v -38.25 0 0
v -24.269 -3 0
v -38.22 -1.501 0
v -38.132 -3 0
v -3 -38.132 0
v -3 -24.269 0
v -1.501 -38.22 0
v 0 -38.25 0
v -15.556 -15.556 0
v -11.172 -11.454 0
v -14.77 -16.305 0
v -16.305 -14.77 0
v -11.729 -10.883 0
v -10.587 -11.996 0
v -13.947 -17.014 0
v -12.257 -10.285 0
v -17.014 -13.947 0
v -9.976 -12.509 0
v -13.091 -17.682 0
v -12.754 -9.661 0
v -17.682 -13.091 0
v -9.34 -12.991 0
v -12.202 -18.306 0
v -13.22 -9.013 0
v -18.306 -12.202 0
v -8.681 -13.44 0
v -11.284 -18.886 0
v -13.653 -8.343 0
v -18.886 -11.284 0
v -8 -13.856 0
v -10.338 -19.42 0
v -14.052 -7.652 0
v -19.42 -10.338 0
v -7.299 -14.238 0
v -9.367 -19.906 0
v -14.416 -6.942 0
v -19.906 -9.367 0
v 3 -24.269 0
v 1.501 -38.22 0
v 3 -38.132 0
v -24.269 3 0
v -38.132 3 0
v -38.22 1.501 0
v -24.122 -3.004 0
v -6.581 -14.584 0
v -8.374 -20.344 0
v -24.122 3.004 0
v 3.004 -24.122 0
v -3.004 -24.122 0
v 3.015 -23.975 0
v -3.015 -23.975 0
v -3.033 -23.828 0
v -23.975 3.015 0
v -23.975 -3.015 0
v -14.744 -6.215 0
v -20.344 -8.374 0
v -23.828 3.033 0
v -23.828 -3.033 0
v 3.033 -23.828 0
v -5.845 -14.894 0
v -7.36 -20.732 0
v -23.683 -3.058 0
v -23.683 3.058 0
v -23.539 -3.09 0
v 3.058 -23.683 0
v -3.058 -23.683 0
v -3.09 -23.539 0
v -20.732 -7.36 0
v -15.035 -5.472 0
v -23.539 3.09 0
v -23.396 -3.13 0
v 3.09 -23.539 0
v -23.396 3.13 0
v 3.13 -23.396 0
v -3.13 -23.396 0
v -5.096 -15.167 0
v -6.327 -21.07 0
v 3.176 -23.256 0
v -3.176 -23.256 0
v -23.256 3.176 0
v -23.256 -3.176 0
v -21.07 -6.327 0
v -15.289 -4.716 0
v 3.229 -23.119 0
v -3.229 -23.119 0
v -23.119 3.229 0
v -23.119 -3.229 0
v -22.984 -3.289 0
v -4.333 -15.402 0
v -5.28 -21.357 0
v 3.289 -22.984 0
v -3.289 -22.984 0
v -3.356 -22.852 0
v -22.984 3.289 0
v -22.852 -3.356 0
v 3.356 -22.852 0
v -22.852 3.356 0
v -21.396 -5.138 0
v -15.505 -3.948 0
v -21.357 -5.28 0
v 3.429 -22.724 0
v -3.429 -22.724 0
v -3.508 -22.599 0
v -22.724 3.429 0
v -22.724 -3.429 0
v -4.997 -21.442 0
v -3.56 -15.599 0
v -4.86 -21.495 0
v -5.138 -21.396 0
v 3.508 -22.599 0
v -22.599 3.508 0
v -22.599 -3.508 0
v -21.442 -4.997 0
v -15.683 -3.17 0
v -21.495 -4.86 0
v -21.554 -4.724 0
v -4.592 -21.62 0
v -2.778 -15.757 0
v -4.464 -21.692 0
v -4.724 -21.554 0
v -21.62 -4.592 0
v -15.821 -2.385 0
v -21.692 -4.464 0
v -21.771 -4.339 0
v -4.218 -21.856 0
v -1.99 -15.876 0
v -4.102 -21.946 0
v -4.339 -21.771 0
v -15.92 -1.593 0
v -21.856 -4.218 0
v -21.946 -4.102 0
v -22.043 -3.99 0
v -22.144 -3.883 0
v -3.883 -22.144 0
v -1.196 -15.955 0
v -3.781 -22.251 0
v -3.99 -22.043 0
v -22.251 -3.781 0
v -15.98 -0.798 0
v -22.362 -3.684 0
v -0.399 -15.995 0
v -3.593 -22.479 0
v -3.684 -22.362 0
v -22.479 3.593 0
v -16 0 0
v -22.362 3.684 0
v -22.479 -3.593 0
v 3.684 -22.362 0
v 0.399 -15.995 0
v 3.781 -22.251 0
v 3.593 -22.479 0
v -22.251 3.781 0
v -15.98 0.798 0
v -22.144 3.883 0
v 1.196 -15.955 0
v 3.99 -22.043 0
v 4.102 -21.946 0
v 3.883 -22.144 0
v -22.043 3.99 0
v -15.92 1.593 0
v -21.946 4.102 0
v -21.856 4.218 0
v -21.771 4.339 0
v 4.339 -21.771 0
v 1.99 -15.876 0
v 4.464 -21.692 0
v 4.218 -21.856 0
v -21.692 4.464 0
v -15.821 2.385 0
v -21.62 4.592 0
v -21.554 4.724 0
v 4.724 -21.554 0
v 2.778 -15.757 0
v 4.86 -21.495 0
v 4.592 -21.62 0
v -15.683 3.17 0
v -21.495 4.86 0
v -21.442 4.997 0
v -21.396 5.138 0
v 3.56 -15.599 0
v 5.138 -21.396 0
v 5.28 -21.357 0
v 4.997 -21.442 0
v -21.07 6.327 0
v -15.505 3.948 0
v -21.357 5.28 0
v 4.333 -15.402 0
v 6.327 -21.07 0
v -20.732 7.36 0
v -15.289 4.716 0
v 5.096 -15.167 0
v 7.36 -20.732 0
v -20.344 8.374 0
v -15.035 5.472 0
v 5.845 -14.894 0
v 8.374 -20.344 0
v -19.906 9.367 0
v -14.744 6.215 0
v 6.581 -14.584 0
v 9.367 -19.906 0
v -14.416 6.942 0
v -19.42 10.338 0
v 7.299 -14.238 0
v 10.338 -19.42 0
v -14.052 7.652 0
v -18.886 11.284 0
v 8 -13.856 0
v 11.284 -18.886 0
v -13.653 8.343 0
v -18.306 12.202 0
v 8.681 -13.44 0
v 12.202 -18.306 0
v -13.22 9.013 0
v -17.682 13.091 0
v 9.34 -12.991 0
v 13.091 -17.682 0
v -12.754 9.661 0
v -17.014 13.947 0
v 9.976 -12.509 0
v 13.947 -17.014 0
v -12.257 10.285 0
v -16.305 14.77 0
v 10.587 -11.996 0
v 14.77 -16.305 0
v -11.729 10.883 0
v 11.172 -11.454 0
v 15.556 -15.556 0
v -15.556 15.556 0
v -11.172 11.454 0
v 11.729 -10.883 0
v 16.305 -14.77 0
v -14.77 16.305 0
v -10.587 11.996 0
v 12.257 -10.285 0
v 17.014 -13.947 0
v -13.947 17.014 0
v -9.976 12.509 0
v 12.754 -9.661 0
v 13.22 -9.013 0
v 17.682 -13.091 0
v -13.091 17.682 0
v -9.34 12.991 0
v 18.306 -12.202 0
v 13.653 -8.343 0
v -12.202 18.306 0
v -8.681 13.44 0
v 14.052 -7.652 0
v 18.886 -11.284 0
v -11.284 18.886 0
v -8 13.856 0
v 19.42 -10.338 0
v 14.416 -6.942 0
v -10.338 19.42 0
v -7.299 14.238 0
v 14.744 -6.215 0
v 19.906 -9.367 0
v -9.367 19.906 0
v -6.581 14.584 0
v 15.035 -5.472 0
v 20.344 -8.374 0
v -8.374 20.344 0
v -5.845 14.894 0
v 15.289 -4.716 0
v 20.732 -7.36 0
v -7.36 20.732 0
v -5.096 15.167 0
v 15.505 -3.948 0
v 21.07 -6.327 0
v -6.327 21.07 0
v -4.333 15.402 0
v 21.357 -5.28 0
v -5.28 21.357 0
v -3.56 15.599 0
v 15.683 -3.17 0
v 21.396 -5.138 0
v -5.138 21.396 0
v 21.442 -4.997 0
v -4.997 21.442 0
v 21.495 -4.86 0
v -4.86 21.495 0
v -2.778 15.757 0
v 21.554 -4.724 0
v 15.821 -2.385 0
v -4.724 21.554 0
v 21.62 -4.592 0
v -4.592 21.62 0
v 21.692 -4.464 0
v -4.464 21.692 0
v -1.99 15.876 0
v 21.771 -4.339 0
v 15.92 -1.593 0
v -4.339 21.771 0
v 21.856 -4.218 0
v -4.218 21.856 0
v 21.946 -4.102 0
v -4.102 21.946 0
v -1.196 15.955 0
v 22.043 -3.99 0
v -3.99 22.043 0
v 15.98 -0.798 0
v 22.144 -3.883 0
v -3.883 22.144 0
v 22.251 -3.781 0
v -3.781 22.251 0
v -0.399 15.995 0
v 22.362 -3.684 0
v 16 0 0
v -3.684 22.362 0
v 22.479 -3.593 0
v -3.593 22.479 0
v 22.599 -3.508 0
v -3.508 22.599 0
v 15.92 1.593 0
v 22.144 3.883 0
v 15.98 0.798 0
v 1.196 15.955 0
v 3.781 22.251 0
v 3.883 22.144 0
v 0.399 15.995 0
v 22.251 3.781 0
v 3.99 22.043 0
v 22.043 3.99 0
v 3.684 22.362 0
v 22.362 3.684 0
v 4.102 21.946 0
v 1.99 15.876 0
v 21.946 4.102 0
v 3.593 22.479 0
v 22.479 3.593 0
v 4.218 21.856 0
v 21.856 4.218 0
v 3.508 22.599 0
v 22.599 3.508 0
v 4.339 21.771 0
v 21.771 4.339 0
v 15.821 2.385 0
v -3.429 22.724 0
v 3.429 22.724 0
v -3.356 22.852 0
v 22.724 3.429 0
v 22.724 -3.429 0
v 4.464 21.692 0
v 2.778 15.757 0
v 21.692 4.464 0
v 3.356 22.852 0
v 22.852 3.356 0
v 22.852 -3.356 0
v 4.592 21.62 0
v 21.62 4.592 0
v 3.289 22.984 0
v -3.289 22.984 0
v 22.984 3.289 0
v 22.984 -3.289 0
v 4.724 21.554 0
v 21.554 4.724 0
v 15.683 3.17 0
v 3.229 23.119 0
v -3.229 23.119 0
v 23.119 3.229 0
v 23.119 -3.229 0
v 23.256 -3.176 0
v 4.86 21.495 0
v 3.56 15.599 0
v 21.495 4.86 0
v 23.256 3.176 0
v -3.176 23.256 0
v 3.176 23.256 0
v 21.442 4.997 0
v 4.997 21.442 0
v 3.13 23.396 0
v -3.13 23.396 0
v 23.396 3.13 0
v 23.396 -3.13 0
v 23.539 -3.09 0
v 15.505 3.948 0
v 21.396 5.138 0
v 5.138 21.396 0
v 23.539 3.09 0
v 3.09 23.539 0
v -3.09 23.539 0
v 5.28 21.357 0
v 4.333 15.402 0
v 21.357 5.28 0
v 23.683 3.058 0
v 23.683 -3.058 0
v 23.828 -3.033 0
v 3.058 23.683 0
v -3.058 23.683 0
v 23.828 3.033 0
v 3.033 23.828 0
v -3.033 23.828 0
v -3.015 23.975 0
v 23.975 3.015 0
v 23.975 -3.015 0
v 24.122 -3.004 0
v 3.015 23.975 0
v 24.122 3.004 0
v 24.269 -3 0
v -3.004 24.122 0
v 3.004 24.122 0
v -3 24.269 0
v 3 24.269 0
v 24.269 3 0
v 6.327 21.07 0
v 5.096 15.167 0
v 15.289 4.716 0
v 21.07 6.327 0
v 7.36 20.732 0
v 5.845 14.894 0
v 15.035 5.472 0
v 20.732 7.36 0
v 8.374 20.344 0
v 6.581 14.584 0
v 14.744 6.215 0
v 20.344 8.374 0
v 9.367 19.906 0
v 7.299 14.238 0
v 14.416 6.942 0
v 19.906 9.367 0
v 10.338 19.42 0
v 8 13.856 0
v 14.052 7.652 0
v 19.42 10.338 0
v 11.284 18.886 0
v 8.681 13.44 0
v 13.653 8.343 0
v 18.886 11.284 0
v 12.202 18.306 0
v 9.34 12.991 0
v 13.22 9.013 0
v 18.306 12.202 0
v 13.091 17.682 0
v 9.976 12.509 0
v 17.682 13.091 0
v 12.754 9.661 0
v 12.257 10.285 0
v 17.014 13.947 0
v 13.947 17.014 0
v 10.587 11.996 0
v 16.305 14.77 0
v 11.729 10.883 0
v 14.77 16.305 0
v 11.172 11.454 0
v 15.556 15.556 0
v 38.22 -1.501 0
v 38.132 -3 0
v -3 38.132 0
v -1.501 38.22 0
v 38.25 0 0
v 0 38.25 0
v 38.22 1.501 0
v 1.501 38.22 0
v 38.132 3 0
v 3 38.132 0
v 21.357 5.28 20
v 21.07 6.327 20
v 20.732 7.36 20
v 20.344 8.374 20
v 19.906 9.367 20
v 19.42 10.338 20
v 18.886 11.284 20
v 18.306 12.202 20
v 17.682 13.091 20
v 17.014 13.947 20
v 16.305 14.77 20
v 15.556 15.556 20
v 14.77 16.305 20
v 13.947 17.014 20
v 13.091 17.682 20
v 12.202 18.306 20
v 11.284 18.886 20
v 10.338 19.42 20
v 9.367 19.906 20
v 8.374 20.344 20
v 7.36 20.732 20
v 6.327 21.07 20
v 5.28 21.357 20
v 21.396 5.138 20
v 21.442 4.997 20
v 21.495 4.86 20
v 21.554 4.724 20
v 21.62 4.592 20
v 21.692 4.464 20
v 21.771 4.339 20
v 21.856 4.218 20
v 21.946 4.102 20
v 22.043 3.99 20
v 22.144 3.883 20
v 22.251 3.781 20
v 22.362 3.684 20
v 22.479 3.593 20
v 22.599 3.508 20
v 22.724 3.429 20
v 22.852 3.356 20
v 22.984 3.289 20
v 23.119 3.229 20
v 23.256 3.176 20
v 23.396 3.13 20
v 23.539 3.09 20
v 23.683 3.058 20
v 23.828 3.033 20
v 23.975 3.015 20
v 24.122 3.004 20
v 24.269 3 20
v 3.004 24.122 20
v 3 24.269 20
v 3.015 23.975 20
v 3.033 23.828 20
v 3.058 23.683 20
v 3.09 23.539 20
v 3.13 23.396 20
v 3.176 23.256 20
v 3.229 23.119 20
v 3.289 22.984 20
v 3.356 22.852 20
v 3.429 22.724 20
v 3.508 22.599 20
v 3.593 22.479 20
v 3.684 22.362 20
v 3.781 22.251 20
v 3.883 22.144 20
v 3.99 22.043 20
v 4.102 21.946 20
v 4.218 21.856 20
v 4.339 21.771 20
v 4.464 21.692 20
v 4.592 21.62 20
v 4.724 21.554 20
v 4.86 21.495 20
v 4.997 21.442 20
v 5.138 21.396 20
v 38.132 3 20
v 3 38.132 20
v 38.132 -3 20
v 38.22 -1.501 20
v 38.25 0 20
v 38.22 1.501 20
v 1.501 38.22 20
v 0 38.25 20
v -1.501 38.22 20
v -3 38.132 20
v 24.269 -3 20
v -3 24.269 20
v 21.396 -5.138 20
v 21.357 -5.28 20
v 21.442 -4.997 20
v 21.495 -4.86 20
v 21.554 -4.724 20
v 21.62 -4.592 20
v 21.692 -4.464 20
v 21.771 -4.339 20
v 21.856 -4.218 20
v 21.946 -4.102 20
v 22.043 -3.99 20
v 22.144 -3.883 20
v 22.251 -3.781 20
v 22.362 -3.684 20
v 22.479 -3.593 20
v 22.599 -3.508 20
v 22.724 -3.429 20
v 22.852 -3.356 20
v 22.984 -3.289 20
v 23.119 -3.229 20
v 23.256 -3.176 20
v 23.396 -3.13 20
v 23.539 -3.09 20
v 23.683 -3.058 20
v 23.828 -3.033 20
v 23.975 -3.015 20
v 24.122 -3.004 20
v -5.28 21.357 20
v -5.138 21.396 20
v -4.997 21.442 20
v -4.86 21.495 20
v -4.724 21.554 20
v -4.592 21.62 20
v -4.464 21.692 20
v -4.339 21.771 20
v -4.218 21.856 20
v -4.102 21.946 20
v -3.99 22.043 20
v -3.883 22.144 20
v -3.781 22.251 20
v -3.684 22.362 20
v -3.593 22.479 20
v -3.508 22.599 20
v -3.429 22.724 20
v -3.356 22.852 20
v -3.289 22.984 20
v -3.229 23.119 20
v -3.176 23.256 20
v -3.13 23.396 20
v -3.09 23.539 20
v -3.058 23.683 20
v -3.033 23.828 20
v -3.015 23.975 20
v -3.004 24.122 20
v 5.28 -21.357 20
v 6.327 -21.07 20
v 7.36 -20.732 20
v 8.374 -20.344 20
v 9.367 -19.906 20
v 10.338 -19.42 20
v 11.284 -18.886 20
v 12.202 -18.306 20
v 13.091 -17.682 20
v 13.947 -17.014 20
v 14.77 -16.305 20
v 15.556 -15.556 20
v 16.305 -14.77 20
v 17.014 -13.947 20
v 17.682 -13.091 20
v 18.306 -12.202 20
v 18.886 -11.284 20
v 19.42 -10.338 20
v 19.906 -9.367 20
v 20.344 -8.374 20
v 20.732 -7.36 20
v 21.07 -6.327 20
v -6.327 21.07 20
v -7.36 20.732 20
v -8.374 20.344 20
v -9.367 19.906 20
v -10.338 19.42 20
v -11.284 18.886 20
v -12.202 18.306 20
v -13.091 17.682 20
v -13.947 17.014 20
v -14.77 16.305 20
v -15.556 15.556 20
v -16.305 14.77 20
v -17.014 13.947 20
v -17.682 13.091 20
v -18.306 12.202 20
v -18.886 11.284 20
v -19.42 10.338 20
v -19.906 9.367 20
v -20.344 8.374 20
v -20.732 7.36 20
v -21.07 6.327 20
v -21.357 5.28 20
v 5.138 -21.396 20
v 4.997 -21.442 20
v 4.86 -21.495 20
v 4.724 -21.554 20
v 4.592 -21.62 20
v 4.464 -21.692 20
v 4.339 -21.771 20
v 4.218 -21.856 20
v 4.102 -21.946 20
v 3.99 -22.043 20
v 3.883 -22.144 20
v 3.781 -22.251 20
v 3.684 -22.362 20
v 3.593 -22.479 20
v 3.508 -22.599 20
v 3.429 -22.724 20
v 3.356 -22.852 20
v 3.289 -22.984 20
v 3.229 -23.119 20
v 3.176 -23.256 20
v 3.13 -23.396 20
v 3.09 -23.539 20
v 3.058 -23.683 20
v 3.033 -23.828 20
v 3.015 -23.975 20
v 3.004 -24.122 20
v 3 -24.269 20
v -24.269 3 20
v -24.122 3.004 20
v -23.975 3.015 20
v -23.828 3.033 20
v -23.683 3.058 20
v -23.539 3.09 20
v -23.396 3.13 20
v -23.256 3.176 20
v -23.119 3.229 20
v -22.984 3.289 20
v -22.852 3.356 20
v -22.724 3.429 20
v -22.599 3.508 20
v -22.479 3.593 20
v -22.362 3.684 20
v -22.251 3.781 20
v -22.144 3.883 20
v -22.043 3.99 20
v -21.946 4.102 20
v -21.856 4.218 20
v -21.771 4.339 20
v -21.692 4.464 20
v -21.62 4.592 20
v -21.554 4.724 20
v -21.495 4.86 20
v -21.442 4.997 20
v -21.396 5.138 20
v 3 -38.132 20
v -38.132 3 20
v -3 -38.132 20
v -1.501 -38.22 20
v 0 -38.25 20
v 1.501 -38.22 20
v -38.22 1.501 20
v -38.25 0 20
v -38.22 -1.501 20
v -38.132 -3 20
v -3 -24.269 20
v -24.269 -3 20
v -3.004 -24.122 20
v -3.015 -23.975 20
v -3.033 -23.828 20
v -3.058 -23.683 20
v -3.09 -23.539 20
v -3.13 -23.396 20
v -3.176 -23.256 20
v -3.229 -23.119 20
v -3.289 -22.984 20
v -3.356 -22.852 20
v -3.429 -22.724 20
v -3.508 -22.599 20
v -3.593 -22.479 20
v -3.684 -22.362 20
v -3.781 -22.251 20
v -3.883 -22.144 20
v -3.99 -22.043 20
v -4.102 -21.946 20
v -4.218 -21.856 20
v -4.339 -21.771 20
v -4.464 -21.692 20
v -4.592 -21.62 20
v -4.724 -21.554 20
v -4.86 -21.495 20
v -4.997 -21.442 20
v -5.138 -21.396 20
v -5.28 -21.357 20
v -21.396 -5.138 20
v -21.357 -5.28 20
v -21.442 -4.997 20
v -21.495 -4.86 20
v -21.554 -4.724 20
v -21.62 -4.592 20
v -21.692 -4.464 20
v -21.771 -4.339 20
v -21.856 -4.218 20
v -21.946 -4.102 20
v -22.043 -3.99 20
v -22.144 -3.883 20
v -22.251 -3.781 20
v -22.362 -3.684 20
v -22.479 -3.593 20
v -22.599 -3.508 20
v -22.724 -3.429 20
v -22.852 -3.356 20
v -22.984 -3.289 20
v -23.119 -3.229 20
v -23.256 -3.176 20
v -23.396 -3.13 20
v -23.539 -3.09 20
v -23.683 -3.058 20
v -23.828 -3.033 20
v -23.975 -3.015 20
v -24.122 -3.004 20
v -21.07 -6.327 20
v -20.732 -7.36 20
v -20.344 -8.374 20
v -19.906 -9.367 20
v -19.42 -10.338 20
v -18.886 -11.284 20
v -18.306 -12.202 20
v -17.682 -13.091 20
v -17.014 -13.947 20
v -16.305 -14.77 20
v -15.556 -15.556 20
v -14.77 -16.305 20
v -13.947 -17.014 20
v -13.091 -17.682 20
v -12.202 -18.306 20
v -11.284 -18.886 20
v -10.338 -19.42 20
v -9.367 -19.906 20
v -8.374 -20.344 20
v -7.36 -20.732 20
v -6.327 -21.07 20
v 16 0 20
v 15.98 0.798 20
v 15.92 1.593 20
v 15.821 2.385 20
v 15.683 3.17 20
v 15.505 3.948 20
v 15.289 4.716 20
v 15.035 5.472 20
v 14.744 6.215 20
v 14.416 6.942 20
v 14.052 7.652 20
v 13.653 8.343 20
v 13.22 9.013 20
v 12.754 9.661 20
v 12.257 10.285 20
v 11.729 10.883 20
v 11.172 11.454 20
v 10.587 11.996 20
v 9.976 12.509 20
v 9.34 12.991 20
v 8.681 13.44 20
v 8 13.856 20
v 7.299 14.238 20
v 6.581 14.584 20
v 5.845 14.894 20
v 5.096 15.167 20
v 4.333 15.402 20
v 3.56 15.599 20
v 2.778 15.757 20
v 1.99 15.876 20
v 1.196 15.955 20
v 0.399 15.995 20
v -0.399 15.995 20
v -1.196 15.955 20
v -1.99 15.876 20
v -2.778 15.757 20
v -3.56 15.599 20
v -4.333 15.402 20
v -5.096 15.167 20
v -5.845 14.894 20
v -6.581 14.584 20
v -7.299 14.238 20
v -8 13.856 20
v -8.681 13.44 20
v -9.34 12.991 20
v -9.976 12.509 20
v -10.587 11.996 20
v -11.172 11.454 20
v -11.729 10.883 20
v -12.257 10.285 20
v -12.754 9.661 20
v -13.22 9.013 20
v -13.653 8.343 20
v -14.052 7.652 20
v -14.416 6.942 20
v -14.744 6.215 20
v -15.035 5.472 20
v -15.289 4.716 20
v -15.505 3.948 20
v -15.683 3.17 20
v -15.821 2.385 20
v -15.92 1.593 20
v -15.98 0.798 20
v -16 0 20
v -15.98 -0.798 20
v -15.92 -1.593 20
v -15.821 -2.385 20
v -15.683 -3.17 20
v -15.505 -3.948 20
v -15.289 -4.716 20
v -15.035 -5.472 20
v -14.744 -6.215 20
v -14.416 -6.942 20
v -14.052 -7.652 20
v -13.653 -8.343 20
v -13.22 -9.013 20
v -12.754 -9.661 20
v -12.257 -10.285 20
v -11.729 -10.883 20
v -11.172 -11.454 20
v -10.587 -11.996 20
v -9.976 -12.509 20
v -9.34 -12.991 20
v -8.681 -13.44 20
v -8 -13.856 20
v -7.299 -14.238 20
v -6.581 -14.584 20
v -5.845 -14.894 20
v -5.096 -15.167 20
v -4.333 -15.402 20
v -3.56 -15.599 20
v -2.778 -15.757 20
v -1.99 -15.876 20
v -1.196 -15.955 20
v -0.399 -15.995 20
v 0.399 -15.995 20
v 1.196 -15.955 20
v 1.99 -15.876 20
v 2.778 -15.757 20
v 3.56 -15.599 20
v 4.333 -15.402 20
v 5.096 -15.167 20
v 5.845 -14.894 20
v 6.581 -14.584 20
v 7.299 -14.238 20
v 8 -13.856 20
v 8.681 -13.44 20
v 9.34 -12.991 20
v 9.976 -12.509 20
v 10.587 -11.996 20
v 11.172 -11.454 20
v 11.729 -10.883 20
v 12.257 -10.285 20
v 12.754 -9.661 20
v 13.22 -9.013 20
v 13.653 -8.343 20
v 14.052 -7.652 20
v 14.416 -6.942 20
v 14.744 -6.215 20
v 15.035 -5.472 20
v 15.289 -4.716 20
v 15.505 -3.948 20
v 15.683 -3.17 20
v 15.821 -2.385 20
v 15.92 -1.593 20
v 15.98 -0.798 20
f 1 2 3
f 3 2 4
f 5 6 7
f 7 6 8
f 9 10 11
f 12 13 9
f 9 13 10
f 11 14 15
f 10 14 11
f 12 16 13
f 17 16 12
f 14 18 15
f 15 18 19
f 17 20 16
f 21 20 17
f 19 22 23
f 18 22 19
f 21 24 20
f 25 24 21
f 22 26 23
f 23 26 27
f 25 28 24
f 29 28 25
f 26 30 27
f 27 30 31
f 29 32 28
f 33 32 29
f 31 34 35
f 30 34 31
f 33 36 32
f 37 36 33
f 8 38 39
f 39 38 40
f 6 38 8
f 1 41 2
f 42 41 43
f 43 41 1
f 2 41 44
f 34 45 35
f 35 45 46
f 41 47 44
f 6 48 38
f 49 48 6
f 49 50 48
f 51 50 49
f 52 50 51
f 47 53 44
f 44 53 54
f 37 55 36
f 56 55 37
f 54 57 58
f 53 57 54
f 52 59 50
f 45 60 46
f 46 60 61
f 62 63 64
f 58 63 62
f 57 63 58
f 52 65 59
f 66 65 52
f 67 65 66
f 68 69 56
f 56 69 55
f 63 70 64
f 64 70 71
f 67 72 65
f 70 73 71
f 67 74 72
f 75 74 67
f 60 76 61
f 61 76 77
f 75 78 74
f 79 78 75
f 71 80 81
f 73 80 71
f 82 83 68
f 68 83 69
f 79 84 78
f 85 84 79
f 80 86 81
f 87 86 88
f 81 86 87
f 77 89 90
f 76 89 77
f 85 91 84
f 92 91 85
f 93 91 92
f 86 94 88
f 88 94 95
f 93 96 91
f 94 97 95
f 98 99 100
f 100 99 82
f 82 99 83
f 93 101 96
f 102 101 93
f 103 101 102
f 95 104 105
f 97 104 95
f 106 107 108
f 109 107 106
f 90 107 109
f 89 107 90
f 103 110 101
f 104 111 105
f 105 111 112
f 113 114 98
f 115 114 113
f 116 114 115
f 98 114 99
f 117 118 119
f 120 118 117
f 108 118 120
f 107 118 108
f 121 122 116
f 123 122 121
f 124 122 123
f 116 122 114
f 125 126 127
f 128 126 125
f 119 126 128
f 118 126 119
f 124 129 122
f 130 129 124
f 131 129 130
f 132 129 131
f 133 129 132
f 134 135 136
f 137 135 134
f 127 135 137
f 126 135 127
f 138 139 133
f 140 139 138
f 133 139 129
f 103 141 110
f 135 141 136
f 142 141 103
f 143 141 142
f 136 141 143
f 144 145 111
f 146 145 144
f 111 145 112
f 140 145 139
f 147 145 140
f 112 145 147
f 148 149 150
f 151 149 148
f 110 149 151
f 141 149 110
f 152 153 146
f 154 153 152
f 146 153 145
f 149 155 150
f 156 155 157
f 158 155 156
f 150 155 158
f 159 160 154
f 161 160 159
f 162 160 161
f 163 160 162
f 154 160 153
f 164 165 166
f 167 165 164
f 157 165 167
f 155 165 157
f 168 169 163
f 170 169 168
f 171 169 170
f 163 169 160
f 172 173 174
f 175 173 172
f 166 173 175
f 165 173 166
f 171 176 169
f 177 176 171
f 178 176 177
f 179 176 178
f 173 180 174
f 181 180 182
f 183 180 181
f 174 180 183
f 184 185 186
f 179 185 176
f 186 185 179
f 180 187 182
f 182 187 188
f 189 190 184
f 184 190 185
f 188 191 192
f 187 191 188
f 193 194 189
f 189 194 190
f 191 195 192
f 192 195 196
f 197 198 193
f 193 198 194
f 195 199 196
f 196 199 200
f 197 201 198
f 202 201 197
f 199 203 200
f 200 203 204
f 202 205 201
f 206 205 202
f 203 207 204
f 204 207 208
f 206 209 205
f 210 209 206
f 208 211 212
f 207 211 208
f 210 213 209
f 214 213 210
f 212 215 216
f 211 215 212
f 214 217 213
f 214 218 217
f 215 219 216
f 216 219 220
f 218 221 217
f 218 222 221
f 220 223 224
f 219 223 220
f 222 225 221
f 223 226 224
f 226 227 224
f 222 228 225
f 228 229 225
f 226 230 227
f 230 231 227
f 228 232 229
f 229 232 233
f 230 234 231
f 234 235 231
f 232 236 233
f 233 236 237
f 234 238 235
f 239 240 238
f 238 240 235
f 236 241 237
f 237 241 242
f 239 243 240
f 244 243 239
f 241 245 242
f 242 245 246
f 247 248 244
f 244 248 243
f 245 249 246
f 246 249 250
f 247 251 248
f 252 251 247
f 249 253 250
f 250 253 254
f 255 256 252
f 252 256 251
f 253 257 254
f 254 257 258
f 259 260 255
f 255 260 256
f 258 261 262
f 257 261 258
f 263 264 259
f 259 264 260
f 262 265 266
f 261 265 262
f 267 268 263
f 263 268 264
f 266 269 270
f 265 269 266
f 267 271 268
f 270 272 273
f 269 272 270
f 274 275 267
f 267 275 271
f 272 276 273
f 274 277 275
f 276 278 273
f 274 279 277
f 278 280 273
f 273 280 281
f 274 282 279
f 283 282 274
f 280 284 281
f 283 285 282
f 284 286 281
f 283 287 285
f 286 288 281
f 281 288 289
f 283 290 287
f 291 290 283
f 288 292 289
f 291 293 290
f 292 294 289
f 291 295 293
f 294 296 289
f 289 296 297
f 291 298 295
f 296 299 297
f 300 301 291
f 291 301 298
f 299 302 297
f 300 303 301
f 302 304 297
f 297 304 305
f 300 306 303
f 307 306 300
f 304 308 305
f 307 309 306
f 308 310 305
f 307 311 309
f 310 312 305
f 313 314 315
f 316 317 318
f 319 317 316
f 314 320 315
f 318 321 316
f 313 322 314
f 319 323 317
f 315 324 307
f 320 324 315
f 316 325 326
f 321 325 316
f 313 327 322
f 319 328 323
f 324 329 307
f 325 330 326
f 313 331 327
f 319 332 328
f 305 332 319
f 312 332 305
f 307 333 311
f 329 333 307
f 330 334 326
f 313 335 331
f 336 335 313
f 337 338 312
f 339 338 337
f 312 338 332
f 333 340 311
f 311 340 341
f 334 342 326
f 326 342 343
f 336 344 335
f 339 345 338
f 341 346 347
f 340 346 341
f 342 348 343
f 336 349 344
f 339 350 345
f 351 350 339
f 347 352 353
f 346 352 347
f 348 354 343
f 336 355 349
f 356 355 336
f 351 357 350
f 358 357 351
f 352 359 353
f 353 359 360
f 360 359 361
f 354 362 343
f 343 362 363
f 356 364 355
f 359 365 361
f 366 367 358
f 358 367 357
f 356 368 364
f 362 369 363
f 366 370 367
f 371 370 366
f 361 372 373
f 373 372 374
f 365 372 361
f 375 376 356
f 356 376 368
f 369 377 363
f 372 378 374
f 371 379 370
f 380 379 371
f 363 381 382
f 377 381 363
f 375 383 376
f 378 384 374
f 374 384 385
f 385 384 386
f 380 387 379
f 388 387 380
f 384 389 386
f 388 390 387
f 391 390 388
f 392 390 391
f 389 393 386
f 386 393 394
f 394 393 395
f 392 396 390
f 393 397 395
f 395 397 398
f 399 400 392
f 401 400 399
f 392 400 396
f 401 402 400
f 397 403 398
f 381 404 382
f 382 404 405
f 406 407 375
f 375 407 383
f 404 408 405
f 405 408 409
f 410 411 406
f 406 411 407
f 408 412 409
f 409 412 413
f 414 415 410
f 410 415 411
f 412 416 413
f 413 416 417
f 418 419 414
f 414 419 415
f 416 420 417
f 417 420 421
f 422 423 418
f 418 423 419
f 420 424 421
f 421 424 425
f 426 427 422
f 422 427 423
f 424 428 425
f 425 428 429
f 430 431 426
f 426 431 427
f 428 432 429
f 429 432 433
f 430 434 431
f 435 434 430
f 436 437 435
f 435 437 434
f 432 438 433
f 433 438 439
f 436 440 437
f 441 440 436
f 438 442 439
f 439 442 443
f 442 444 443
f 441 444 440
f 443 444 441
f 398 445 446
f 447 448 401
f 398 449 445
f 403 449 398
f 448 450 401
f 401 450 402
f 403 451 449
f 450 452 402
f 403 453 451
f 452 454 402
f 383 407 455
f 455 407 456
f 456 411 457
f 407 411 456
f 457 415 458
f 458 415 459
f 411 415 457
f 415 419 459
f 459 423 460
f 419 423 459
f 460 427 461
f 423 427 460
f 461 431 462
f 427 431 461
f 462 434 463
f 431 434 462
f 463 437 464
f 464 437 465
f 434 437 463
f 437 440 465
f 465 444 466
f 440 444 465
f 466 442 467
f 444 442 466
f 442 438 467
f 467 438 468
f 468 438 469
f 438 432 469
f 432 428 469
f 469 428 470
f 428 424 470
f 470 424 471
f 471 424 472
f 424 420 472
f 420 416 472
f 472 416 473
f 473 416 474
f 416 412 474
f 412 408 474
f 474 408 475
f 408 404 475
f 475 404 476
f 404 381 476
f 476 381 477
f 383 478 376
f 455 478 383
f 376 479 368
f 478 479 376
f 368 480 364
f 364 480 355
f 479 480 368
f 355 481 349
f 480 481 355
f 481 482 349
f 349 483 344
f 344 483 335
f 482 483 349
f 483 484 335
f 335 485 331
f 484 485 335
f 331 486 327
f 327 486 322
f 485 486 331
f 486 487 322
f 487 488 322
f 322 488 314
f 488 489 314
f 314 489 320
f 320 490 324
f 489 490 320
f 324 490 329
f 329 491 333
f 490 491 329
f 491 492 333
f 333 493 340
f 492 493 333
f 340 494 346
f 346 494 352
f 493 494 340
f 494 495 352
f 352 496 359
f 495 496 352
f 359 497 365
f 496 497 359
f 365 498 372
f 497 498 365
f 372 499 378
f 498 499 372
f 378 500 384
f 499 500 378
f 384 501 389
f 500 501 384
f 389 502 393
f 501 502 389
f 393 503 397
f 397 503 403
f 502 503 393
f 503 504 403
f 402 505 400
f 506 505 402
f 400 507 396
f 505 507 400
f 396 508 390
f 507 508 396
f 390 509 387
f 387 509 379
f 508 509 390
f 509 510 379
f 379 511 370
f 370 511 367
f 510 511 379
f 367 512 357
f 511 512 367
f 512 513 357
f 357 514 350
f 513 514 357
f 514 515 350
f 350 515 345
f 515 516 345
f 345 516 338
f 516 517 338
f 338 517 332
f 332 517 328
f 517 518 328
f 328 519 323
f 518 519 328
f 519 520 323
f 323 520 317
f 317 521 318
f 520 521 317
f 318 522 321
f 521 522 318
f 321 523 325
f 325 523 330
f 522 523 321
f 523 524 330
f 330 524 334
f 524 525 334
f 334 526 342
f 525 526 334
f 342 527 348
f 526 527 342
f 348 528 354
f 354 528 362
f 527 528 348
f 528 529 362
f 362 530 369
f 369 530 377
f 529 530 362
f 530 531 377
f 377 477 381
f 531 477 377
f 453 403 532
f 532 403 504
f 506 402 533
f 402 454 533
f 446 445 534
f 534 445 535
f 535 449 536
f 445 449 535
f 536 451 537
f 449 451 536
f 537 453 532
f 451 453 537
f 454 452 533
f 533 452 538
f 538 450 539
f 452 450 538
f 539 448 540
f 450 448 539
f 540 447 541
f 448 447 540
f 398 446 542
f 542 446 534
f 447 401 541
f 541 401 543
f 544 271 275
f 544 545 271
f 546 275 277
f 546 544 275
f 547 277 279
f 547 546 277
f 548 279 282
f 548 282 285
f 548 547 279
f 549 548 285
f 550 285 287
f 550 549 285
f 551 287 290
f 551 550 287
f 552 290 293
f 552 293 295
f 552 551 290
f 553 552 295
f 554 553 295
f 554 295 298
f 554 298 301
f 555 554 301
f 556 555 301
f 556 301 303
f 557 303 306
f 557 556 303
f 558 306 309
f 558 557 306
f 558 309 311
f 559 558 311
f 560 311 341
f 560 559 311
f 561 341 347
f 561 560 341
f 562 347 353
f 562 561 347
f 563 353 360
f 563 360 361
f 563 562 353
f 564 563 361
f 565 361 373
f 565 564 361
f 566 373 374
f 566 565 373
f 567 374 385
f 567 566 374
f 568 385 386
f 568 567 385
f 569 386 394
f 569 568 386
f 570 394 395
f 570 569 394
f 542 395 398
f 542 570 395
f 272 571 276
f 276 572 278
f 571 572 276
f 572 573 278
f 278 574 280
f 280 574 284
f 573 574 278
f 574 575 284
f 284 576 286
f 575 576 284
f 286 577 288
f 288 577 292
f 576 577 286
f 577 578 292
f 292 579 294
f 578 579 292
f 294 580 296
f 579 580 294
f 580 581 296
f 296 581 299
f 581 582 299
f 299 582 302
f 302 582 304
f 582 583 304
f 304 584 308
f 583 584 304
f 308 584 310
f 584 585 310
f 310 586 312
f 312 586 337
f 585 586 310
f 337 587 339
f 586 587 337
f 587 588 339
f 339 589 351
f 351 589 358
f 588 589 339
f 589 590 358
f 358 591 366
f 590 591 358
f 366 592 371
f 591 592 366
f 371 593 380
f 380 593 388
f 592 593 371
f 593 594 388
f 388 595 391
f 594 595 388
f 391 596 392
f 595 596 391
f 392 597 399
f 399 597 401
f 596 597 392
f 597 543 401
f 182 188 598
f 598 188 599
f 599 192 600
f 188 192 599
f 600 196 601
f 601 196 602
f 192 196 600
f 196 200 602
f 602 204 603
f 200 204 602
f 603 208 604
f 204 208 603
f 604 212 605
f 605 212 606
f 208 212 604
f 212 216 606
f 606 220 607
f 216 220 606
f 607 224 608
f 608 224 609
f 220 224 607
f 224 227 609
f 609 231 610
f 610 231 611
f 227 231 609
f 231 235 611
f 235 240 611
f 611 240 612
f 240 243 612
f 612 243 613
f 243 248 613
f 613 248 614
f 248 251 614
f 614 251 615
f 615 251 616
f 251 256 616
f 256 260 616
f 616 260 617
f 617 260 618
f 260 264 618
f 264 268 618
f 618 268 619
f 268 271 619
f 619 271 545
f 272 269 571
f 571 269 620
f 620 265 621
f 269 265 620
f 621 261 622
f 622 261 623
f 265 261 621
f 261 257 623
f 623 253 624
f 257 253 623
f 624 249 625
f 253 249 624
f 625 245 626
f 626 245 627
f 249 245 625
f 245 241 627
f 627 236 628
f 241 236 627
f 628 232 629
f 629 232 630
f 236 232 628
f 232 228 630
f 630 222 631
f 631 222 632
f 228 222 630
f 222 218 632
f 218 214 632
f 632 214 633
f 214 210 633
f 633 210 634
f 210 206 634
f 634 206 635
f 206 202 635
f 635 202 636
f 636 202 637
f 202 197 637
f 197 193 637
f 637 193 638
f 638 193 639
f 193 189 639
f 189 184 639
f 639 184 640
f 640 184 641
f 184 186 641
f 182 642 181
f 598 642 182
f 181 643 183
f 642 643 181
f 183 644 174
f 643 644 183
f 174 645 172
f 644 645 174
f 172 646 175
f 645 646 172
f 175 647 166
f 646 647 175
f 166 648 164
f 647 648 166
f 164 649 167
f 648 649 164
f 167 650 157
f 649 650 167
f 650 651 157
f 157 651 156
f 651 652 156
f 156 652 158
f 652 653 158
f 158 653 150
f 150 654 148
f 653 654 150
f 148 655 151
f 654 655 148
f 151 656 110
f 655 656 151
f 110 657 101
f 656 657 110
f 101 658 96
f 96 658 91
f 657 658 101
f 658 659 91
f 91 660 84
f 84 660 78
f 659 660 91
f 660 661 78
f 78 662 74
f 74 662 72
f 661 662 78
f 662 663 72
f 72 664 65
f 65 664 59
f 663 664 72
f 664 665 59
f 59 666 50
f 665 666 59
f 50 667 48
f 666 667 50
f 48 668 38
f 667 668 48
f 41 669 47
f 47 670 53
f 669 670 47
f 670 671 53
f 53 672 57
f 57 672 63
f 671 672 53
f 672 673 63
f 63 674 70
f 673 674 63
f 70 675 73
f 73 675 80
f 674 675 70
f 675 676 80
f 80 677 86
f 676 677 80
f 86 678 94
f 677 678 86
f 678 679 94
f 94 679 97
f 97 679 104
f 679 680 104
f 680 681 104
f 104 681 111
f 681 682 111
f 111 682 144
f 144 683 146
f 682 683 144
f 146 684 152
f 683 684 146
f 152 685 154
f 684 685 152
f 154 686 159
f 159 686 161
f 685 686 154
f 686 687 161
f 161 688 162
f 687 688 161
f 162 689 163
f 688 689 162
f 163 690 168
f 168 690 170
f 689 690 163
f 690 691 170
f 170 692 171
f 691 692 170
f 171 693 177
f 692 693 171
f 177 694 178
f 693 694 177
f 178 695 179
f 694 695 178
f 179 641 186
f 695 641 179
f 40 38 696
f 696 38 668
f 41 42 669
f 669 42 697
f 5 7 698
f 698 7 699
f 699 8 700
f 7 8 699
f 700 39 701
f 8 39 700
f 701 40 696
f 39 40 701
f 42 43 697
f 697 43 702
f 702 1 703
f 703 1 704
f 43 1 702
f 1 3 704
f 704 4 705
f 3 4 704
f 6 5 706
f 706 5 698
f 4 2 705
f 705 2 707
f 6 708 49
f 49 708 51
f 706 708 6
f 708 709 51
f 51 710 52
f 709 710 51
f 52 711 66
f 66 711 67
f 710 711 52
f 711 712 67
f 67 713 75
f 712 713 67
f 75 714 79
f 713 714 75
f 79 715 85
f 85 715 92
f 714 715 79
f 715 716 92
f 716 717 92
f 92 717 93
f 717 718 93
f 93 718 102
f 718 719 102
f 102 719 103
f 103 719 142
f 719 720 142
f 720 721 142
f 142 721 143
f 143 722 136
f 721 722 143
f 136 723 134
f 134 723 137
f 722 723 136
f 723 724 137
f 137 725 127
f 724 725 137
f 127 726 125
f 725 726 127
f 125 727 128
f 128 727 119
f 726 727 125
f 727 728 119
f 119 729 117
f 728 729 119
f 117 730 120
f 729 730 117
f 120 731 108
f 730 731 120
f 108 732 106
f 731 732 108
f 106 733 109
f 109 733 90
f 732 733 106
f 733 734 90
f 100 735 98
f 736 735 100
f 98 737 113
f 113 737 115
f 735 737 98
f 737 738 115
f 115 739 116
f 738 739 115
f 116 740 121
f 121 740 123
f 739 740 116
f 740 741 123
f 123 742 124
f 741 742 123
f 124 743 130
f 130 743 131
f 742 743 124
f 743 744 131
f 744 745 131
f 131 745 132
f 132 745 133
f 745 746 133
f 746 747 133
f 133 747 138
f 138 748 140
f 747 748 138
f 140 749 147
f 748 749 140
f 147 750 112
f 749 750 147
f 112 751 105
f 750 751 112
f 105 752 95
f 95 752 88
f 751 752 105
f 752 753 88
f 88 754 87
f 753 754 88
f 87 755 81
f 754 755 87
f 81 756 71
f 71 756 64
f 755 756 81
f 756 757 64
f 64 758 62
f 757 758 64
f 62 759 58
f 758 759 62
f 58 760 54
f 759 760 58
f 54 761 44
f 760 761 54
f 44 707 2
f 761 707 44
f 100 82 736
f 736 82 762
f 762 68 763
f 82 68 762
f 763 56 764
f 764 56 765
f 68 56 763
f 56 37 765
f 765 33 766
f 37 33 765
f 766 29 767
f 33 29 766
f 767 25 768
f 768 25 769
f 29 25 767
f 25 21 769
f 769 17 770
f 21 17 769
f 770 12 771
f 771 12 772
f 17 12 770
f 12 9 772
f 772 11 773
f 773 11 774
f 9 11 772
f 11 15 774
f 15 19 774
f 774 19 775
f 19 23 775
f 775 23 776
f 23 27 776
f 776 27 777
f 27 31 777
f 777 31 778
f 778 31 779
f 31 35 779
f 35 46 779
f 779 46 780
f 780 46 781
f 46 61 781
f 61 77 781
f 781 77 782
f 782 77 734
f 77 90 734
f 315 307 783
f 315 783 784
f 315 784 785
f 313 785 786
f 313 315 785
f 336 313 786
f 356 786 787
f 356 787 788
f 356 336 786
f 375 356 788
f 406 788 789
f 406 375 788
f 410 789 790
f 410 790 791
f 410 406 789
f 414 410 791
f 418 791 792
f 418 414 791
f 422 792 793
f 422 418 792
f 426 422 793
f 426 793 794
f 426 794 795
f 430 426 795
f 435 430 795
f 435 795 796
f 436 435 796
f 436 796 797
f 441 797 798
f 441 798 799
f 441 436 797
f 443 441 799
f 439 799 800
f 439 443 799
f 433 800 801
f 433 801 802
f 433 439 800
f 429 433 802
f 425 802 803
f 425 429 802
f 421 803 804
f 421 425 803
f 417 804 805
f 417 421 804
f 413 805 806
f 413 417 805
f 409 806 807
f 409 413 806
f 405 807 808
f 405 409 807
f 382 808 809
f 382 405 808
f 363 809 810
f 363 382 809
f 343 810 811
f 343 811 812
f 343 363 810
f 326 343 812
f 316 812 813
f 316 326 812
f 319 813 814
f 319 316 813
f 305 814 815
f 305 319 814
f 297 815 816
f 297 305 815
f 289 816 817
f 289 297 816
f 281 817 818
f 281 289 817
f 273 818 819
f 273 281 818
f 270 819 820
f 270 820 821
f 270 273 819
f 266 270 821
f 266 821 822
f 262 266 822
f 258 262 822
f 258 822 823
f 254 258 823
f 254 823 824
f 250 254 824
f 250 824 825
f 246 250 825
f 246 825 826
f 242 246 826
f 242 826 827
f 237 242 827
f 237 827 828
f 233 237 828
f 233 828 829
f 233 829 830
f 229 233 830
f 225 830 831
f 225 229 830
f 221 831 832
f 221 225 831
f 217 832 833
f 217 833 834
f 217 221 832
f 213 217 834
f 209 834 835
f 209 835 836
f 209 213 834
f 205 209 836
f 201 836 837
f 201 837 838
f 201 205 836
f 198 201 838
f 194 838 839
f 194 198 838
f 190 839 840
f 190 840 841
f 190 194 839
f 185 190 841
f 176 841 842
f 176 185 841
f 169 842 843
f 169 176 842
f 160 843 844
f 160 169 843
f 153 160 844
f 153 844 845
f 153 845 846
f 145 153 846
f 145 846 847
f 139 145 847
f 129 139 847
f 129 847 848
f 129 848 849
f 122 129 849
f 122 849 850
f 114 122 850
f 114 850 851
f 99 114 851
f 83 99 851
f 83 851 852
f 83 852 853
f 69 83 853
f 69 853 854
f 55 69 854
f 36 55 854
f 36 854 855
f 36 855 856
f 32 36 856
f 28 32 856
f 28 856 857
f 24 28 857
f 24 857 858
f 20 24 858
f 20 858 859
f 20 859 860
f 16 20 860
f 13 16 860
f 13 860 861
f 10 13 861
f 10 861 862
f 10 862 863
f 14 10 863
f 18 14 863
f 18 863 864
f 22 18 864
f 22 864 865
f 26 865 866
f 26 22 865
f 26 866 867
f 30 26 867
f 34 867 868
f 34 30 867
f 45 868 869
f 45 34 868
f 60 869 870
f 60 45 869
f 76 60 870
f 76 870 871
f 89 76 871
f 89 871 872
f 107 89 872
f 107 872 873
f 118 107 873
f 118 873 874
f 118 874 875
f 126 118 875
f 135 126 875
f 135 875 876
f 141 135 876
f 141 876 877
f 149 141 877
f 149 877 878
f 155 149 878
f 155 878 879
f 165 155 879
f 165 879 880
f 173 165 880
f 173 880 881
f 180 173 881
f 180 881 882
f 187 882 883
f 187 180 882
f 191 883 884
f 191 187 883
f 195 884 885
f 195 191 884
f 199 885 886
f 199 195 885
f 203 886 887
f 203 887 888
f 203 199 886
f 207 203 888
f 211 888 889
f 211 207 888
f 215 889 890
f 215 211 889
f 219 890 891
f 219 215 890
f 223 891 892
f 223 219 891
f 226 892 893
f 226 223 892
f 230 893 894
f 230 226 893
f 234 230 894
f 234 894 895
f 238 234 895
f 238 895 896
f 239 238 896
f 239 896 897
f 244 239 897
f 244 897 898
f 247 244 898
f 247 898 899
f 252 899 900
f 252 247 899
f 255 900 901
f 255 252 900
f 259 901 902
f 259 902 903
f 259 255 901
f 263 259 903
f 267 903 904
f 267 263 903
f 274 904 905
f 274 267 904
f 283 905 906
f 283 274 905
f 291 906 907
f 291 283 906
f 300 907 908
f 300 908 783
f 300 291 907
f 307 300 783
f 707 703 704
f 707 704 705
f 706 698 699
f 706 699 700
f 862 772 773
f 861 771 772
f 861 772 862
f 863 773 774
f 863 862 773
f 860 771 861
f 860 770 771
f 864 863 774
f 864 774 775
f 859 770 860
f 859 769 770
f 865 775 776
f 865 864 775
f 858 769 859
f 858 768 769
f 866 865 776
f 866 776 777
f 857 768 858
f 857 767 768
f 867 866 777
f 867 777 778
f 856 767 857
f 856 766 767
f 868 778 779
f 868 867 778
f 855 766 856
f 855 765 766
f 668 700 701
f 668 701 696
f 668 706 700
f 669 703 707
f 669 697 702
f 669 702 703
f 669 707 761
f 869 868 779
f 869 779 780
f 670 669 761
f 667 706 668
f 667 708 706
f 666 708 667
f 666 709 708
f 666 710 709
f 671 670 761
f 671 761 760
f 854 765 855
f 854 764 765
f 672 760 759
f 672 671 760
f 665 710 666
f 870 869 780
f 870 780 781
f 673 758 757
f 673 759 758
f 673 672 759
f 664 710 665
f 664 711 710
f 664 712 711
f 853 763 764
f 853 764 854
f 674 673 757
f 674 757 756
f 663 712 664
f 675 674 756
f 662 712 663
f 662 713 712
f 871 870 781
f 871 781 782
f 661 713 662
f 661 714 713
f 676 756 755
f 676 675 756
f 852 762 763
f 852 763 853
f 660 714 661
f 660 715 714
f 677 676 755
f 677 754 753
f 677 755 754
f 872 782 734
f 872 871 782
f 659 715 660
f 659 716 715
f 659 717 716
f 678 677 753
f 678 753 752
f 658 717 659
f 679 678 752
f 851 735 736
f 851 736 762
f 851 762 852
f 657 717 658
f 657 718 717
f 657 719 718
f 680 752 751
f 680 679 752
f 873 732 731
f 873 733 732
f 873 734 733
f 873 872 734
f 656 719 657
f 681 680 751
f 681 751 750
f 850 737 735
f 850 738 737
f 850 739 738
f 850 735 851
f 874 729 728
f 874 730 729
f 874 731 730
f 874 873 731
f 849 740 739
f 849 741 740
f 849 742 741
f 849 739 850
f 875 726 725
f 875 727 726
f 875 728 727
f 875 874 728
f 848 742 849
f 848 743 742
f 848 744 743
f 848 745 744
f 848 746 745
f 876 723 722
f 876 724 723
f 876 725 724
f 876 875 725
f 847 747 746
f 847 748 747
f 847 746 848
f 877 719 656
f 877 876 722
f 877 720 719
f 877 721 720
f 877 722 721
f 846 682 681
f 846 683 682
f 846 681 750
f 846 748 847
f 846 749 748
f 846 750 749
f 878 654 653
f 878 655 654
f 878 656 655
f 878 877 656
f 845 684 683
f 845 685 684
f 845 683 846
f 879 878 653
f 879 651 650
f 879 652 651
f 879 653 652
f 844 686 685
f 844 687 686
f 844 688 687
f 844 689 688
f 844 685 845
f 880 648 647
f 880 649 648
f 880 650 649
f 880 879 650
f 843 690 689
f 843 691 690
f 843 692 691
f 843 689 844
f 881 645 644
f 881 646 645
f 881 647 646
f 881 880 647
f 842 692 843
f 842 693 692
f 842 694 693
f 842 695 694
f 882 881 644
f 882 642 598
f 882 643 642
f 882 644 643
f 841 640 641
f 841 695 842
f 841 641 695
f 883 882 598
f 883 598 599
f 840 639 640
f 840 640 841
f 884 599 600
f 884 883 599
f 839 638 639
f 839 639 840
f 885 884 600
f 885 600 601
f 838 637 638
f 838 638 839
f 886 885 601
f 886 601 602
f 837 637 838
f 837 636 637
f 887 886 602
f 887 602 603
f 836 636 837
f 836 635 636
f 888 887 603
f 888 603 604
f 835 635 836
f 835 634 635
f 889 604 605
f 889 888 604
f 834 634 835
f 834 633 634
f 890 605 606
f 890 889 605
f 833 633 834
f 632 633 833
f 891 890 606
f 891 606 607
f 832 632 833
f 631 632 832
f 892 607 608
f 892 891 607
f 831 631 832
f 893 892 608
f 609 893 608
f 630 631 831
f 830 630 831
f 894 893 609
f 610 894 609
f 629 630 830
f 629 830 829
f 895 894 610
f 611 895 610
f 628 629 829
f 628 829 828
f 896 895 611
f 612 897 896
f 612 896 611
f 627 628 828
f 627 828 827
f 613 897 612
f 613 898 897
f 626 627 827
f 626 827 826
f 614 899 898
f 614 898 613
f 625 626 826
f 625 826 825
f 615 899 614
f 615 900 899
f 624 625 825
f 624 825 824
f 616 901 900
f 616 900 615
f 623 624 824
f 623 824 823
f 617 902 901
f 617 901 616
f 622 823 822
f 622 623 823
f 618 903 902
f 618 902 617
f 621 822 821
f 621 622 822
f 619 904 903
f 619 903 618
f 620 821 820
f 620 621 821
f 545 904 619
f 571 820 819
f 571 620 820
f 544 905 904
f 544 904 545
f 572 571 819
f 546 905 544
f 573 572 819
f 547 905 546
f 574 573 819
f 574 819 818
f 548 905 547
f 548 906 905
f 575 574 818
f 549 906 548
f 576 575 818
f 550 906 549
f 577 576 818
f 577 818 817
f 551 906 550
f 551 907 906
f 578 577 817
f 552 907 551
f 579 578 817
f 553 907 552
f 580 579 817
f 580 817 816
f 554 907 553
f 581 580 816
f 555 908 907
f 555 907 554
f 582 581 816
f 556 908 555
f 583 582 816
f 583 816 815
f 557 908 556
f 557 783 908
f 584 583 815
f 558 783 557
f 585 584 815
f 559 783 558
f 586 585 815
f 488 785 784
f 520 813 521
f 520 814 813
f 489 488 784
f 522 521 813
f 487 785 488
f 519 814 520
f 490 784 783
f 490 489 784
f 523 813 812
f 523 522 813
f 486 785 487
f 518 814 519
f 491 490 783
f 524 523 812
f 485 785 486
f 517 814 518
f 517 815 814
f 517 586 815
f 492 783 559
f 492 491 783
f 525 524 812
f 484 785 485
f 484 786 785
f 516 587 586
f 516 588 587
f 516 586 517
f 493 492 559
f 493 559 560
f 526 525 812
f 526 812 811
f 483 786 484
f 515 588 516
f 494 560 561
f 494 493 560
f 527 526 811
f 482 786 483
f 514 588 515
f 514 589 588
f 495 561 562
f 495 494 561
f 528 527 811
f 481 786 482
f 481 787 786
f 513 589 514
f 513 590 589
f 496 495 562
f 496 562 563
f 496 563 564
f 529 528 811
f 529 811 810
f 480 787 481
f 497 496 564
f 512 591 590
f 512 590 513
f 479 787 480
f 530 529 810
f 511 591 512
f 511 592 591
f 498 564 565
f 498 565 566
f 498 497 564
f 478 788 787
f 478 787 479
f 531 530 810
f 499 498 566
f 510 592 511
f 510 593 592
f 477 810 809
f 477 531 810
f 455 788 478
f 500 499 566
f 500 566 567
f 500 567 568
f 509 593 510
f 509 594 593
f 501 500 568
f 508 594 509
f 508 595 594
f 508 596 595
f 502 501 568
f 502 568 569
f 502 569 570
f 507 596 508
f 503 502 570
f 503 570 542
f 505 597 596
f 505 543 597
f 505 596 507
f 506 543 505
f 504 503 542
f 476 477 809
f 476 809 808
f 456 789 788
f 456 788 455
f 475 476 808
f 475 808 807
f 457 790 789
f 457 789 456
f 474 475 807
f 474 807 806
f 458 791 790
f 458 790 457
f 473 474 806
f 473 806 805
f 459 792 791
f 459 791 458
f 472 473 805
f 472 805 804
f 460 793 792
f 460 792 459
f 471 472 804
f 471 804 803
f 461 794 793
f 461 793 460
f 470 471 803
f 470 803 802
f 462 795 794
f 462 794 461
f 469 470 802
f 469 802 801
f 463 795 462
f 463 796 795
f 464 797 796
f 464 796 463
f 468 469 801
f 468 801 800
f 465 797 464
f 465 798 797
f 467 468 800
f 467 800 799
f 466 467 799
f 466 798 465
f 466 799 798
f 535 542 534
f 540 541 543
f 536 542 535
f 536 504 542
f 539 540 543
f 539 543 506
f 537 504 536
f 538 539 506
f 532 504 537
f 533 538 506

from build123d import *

# Parameters (mm, degrees)
SKETCH_R    = 16
PAD_DEPTH   = 20
FILLET_R    = 3
FILLET001_R = 3
FILLET002_R = 3
FILLET003_R = 3
FILLET004_R = 3
FILLET005_R = 3
FILLET006_R = 3
FILLET007_R = 3


with BuildPart() as part:
    # Sketch → Pad (new body)
    with BuildSketch(Plane.XY):
        with BuildLine():
            ThreePointArc((3, -21.794495), (15.556349, -15.556349), (21.794495, -3))
            Line((21.794495, -3), (38.132171, -3))
            ThreePointArc((38.132171, -3), (38.25, 0), (38.132171, 3))
            Line((38.132171, 3), (21.794495, 3))
            ThreePointArc((21.794495, 3), (15.556349, 15.556349), (3, 21.794495))
            Line((3, 21.794495), (3, 38.132171))
            ThreePointArc((3, 38.132171), (0, 38.25), (-3, 38.132171))
            Line((-3, 38.132171), (-3, 21.794495))
            ThreePointArc((-3, 21.794495), (-15.556349, 15.556349), (-21.794495, 3))
            Line((-21.794495, 3), (-38.132171, 3))
            ThreePointArc((-38.132171, 3), (-38.25, 0), (-38.132171, -3))
            Line((-38.132171, -3), (-21.794495, -3))
            ThreePointArc((-21.794495, -3), (-15.556349, -15.556349), (-3, -21.794495))
            Line((-3, -21.794495), (-3, -38.132171))
            ThreePointArc((-3, -38.132171), (0, -38.25), (3, -38.132171))
            Line((3, -38.132171), (3, -21.794495))
        make_face()
        Circle(SKETCH_R, mode=Mode.SUBTRACT)
    extrude(amount=PAD_DEPTH)

    # Fillet
    fillet_edges = [part.edges().sort_by_distance(p)[0] for p in [
        (3, -21.794495, 10),
    ]]
    fillet(fillet_edges, radius=FILLET_R)

    # Fillet001
    fillet001_edges = [part.edges().sort_by_distance(p)[0] for p in [
        (21.794495, -3, 10),
    ]]
    fillet(fillet001_edges, radius=FILLET001_R)

    # Fillet002
    fillet002_edges = [part.edges().sort_by_distance(p)[0] for p in [
        (-3, -21.794495, 10),
    ]]
    fillet(fillet002_edges, radius=FILLET002_R)

    # Fillet003
    fillet003_edges = [part.edges().sort_by_distance(p)[0] for p in [
        (-21.794495, -3, 10),
    ]]
    fillet(fillet003_edges, radius=FILLET003_R)

    # Fillet004
    fillet004_edges = [part.edges().sort_by_distance(p)[0] for p in [
        (-21.794495, 3, 10),
    ]]
    fillet(fillet004_edges, radius=FILLET004_R)

    # Fillet005
    fillet005_edges = [part.edges().sort_by_distance(p)[0] for p in [
        (-3, 21.794495, 10),
    ]]
    fillet(fillet005_edges, radius=FILLET005_R)

    # Fillet006
    fillet006_edges = [part.edges().sort_by_distance(p)[0] for p in [
        (3, 21.794495, 10),
    ]]
    fillet(fillet006_edges, radius=FILLET006_R)

    # Fillet007
    fillet007_edges = [part.edges().sort_by_distance(p)[0] for p in [
        (21.794495, 3, 10),
    ]]
    fillet(fillet007_edges, radius=FILLET007_R)


solid = part.part
